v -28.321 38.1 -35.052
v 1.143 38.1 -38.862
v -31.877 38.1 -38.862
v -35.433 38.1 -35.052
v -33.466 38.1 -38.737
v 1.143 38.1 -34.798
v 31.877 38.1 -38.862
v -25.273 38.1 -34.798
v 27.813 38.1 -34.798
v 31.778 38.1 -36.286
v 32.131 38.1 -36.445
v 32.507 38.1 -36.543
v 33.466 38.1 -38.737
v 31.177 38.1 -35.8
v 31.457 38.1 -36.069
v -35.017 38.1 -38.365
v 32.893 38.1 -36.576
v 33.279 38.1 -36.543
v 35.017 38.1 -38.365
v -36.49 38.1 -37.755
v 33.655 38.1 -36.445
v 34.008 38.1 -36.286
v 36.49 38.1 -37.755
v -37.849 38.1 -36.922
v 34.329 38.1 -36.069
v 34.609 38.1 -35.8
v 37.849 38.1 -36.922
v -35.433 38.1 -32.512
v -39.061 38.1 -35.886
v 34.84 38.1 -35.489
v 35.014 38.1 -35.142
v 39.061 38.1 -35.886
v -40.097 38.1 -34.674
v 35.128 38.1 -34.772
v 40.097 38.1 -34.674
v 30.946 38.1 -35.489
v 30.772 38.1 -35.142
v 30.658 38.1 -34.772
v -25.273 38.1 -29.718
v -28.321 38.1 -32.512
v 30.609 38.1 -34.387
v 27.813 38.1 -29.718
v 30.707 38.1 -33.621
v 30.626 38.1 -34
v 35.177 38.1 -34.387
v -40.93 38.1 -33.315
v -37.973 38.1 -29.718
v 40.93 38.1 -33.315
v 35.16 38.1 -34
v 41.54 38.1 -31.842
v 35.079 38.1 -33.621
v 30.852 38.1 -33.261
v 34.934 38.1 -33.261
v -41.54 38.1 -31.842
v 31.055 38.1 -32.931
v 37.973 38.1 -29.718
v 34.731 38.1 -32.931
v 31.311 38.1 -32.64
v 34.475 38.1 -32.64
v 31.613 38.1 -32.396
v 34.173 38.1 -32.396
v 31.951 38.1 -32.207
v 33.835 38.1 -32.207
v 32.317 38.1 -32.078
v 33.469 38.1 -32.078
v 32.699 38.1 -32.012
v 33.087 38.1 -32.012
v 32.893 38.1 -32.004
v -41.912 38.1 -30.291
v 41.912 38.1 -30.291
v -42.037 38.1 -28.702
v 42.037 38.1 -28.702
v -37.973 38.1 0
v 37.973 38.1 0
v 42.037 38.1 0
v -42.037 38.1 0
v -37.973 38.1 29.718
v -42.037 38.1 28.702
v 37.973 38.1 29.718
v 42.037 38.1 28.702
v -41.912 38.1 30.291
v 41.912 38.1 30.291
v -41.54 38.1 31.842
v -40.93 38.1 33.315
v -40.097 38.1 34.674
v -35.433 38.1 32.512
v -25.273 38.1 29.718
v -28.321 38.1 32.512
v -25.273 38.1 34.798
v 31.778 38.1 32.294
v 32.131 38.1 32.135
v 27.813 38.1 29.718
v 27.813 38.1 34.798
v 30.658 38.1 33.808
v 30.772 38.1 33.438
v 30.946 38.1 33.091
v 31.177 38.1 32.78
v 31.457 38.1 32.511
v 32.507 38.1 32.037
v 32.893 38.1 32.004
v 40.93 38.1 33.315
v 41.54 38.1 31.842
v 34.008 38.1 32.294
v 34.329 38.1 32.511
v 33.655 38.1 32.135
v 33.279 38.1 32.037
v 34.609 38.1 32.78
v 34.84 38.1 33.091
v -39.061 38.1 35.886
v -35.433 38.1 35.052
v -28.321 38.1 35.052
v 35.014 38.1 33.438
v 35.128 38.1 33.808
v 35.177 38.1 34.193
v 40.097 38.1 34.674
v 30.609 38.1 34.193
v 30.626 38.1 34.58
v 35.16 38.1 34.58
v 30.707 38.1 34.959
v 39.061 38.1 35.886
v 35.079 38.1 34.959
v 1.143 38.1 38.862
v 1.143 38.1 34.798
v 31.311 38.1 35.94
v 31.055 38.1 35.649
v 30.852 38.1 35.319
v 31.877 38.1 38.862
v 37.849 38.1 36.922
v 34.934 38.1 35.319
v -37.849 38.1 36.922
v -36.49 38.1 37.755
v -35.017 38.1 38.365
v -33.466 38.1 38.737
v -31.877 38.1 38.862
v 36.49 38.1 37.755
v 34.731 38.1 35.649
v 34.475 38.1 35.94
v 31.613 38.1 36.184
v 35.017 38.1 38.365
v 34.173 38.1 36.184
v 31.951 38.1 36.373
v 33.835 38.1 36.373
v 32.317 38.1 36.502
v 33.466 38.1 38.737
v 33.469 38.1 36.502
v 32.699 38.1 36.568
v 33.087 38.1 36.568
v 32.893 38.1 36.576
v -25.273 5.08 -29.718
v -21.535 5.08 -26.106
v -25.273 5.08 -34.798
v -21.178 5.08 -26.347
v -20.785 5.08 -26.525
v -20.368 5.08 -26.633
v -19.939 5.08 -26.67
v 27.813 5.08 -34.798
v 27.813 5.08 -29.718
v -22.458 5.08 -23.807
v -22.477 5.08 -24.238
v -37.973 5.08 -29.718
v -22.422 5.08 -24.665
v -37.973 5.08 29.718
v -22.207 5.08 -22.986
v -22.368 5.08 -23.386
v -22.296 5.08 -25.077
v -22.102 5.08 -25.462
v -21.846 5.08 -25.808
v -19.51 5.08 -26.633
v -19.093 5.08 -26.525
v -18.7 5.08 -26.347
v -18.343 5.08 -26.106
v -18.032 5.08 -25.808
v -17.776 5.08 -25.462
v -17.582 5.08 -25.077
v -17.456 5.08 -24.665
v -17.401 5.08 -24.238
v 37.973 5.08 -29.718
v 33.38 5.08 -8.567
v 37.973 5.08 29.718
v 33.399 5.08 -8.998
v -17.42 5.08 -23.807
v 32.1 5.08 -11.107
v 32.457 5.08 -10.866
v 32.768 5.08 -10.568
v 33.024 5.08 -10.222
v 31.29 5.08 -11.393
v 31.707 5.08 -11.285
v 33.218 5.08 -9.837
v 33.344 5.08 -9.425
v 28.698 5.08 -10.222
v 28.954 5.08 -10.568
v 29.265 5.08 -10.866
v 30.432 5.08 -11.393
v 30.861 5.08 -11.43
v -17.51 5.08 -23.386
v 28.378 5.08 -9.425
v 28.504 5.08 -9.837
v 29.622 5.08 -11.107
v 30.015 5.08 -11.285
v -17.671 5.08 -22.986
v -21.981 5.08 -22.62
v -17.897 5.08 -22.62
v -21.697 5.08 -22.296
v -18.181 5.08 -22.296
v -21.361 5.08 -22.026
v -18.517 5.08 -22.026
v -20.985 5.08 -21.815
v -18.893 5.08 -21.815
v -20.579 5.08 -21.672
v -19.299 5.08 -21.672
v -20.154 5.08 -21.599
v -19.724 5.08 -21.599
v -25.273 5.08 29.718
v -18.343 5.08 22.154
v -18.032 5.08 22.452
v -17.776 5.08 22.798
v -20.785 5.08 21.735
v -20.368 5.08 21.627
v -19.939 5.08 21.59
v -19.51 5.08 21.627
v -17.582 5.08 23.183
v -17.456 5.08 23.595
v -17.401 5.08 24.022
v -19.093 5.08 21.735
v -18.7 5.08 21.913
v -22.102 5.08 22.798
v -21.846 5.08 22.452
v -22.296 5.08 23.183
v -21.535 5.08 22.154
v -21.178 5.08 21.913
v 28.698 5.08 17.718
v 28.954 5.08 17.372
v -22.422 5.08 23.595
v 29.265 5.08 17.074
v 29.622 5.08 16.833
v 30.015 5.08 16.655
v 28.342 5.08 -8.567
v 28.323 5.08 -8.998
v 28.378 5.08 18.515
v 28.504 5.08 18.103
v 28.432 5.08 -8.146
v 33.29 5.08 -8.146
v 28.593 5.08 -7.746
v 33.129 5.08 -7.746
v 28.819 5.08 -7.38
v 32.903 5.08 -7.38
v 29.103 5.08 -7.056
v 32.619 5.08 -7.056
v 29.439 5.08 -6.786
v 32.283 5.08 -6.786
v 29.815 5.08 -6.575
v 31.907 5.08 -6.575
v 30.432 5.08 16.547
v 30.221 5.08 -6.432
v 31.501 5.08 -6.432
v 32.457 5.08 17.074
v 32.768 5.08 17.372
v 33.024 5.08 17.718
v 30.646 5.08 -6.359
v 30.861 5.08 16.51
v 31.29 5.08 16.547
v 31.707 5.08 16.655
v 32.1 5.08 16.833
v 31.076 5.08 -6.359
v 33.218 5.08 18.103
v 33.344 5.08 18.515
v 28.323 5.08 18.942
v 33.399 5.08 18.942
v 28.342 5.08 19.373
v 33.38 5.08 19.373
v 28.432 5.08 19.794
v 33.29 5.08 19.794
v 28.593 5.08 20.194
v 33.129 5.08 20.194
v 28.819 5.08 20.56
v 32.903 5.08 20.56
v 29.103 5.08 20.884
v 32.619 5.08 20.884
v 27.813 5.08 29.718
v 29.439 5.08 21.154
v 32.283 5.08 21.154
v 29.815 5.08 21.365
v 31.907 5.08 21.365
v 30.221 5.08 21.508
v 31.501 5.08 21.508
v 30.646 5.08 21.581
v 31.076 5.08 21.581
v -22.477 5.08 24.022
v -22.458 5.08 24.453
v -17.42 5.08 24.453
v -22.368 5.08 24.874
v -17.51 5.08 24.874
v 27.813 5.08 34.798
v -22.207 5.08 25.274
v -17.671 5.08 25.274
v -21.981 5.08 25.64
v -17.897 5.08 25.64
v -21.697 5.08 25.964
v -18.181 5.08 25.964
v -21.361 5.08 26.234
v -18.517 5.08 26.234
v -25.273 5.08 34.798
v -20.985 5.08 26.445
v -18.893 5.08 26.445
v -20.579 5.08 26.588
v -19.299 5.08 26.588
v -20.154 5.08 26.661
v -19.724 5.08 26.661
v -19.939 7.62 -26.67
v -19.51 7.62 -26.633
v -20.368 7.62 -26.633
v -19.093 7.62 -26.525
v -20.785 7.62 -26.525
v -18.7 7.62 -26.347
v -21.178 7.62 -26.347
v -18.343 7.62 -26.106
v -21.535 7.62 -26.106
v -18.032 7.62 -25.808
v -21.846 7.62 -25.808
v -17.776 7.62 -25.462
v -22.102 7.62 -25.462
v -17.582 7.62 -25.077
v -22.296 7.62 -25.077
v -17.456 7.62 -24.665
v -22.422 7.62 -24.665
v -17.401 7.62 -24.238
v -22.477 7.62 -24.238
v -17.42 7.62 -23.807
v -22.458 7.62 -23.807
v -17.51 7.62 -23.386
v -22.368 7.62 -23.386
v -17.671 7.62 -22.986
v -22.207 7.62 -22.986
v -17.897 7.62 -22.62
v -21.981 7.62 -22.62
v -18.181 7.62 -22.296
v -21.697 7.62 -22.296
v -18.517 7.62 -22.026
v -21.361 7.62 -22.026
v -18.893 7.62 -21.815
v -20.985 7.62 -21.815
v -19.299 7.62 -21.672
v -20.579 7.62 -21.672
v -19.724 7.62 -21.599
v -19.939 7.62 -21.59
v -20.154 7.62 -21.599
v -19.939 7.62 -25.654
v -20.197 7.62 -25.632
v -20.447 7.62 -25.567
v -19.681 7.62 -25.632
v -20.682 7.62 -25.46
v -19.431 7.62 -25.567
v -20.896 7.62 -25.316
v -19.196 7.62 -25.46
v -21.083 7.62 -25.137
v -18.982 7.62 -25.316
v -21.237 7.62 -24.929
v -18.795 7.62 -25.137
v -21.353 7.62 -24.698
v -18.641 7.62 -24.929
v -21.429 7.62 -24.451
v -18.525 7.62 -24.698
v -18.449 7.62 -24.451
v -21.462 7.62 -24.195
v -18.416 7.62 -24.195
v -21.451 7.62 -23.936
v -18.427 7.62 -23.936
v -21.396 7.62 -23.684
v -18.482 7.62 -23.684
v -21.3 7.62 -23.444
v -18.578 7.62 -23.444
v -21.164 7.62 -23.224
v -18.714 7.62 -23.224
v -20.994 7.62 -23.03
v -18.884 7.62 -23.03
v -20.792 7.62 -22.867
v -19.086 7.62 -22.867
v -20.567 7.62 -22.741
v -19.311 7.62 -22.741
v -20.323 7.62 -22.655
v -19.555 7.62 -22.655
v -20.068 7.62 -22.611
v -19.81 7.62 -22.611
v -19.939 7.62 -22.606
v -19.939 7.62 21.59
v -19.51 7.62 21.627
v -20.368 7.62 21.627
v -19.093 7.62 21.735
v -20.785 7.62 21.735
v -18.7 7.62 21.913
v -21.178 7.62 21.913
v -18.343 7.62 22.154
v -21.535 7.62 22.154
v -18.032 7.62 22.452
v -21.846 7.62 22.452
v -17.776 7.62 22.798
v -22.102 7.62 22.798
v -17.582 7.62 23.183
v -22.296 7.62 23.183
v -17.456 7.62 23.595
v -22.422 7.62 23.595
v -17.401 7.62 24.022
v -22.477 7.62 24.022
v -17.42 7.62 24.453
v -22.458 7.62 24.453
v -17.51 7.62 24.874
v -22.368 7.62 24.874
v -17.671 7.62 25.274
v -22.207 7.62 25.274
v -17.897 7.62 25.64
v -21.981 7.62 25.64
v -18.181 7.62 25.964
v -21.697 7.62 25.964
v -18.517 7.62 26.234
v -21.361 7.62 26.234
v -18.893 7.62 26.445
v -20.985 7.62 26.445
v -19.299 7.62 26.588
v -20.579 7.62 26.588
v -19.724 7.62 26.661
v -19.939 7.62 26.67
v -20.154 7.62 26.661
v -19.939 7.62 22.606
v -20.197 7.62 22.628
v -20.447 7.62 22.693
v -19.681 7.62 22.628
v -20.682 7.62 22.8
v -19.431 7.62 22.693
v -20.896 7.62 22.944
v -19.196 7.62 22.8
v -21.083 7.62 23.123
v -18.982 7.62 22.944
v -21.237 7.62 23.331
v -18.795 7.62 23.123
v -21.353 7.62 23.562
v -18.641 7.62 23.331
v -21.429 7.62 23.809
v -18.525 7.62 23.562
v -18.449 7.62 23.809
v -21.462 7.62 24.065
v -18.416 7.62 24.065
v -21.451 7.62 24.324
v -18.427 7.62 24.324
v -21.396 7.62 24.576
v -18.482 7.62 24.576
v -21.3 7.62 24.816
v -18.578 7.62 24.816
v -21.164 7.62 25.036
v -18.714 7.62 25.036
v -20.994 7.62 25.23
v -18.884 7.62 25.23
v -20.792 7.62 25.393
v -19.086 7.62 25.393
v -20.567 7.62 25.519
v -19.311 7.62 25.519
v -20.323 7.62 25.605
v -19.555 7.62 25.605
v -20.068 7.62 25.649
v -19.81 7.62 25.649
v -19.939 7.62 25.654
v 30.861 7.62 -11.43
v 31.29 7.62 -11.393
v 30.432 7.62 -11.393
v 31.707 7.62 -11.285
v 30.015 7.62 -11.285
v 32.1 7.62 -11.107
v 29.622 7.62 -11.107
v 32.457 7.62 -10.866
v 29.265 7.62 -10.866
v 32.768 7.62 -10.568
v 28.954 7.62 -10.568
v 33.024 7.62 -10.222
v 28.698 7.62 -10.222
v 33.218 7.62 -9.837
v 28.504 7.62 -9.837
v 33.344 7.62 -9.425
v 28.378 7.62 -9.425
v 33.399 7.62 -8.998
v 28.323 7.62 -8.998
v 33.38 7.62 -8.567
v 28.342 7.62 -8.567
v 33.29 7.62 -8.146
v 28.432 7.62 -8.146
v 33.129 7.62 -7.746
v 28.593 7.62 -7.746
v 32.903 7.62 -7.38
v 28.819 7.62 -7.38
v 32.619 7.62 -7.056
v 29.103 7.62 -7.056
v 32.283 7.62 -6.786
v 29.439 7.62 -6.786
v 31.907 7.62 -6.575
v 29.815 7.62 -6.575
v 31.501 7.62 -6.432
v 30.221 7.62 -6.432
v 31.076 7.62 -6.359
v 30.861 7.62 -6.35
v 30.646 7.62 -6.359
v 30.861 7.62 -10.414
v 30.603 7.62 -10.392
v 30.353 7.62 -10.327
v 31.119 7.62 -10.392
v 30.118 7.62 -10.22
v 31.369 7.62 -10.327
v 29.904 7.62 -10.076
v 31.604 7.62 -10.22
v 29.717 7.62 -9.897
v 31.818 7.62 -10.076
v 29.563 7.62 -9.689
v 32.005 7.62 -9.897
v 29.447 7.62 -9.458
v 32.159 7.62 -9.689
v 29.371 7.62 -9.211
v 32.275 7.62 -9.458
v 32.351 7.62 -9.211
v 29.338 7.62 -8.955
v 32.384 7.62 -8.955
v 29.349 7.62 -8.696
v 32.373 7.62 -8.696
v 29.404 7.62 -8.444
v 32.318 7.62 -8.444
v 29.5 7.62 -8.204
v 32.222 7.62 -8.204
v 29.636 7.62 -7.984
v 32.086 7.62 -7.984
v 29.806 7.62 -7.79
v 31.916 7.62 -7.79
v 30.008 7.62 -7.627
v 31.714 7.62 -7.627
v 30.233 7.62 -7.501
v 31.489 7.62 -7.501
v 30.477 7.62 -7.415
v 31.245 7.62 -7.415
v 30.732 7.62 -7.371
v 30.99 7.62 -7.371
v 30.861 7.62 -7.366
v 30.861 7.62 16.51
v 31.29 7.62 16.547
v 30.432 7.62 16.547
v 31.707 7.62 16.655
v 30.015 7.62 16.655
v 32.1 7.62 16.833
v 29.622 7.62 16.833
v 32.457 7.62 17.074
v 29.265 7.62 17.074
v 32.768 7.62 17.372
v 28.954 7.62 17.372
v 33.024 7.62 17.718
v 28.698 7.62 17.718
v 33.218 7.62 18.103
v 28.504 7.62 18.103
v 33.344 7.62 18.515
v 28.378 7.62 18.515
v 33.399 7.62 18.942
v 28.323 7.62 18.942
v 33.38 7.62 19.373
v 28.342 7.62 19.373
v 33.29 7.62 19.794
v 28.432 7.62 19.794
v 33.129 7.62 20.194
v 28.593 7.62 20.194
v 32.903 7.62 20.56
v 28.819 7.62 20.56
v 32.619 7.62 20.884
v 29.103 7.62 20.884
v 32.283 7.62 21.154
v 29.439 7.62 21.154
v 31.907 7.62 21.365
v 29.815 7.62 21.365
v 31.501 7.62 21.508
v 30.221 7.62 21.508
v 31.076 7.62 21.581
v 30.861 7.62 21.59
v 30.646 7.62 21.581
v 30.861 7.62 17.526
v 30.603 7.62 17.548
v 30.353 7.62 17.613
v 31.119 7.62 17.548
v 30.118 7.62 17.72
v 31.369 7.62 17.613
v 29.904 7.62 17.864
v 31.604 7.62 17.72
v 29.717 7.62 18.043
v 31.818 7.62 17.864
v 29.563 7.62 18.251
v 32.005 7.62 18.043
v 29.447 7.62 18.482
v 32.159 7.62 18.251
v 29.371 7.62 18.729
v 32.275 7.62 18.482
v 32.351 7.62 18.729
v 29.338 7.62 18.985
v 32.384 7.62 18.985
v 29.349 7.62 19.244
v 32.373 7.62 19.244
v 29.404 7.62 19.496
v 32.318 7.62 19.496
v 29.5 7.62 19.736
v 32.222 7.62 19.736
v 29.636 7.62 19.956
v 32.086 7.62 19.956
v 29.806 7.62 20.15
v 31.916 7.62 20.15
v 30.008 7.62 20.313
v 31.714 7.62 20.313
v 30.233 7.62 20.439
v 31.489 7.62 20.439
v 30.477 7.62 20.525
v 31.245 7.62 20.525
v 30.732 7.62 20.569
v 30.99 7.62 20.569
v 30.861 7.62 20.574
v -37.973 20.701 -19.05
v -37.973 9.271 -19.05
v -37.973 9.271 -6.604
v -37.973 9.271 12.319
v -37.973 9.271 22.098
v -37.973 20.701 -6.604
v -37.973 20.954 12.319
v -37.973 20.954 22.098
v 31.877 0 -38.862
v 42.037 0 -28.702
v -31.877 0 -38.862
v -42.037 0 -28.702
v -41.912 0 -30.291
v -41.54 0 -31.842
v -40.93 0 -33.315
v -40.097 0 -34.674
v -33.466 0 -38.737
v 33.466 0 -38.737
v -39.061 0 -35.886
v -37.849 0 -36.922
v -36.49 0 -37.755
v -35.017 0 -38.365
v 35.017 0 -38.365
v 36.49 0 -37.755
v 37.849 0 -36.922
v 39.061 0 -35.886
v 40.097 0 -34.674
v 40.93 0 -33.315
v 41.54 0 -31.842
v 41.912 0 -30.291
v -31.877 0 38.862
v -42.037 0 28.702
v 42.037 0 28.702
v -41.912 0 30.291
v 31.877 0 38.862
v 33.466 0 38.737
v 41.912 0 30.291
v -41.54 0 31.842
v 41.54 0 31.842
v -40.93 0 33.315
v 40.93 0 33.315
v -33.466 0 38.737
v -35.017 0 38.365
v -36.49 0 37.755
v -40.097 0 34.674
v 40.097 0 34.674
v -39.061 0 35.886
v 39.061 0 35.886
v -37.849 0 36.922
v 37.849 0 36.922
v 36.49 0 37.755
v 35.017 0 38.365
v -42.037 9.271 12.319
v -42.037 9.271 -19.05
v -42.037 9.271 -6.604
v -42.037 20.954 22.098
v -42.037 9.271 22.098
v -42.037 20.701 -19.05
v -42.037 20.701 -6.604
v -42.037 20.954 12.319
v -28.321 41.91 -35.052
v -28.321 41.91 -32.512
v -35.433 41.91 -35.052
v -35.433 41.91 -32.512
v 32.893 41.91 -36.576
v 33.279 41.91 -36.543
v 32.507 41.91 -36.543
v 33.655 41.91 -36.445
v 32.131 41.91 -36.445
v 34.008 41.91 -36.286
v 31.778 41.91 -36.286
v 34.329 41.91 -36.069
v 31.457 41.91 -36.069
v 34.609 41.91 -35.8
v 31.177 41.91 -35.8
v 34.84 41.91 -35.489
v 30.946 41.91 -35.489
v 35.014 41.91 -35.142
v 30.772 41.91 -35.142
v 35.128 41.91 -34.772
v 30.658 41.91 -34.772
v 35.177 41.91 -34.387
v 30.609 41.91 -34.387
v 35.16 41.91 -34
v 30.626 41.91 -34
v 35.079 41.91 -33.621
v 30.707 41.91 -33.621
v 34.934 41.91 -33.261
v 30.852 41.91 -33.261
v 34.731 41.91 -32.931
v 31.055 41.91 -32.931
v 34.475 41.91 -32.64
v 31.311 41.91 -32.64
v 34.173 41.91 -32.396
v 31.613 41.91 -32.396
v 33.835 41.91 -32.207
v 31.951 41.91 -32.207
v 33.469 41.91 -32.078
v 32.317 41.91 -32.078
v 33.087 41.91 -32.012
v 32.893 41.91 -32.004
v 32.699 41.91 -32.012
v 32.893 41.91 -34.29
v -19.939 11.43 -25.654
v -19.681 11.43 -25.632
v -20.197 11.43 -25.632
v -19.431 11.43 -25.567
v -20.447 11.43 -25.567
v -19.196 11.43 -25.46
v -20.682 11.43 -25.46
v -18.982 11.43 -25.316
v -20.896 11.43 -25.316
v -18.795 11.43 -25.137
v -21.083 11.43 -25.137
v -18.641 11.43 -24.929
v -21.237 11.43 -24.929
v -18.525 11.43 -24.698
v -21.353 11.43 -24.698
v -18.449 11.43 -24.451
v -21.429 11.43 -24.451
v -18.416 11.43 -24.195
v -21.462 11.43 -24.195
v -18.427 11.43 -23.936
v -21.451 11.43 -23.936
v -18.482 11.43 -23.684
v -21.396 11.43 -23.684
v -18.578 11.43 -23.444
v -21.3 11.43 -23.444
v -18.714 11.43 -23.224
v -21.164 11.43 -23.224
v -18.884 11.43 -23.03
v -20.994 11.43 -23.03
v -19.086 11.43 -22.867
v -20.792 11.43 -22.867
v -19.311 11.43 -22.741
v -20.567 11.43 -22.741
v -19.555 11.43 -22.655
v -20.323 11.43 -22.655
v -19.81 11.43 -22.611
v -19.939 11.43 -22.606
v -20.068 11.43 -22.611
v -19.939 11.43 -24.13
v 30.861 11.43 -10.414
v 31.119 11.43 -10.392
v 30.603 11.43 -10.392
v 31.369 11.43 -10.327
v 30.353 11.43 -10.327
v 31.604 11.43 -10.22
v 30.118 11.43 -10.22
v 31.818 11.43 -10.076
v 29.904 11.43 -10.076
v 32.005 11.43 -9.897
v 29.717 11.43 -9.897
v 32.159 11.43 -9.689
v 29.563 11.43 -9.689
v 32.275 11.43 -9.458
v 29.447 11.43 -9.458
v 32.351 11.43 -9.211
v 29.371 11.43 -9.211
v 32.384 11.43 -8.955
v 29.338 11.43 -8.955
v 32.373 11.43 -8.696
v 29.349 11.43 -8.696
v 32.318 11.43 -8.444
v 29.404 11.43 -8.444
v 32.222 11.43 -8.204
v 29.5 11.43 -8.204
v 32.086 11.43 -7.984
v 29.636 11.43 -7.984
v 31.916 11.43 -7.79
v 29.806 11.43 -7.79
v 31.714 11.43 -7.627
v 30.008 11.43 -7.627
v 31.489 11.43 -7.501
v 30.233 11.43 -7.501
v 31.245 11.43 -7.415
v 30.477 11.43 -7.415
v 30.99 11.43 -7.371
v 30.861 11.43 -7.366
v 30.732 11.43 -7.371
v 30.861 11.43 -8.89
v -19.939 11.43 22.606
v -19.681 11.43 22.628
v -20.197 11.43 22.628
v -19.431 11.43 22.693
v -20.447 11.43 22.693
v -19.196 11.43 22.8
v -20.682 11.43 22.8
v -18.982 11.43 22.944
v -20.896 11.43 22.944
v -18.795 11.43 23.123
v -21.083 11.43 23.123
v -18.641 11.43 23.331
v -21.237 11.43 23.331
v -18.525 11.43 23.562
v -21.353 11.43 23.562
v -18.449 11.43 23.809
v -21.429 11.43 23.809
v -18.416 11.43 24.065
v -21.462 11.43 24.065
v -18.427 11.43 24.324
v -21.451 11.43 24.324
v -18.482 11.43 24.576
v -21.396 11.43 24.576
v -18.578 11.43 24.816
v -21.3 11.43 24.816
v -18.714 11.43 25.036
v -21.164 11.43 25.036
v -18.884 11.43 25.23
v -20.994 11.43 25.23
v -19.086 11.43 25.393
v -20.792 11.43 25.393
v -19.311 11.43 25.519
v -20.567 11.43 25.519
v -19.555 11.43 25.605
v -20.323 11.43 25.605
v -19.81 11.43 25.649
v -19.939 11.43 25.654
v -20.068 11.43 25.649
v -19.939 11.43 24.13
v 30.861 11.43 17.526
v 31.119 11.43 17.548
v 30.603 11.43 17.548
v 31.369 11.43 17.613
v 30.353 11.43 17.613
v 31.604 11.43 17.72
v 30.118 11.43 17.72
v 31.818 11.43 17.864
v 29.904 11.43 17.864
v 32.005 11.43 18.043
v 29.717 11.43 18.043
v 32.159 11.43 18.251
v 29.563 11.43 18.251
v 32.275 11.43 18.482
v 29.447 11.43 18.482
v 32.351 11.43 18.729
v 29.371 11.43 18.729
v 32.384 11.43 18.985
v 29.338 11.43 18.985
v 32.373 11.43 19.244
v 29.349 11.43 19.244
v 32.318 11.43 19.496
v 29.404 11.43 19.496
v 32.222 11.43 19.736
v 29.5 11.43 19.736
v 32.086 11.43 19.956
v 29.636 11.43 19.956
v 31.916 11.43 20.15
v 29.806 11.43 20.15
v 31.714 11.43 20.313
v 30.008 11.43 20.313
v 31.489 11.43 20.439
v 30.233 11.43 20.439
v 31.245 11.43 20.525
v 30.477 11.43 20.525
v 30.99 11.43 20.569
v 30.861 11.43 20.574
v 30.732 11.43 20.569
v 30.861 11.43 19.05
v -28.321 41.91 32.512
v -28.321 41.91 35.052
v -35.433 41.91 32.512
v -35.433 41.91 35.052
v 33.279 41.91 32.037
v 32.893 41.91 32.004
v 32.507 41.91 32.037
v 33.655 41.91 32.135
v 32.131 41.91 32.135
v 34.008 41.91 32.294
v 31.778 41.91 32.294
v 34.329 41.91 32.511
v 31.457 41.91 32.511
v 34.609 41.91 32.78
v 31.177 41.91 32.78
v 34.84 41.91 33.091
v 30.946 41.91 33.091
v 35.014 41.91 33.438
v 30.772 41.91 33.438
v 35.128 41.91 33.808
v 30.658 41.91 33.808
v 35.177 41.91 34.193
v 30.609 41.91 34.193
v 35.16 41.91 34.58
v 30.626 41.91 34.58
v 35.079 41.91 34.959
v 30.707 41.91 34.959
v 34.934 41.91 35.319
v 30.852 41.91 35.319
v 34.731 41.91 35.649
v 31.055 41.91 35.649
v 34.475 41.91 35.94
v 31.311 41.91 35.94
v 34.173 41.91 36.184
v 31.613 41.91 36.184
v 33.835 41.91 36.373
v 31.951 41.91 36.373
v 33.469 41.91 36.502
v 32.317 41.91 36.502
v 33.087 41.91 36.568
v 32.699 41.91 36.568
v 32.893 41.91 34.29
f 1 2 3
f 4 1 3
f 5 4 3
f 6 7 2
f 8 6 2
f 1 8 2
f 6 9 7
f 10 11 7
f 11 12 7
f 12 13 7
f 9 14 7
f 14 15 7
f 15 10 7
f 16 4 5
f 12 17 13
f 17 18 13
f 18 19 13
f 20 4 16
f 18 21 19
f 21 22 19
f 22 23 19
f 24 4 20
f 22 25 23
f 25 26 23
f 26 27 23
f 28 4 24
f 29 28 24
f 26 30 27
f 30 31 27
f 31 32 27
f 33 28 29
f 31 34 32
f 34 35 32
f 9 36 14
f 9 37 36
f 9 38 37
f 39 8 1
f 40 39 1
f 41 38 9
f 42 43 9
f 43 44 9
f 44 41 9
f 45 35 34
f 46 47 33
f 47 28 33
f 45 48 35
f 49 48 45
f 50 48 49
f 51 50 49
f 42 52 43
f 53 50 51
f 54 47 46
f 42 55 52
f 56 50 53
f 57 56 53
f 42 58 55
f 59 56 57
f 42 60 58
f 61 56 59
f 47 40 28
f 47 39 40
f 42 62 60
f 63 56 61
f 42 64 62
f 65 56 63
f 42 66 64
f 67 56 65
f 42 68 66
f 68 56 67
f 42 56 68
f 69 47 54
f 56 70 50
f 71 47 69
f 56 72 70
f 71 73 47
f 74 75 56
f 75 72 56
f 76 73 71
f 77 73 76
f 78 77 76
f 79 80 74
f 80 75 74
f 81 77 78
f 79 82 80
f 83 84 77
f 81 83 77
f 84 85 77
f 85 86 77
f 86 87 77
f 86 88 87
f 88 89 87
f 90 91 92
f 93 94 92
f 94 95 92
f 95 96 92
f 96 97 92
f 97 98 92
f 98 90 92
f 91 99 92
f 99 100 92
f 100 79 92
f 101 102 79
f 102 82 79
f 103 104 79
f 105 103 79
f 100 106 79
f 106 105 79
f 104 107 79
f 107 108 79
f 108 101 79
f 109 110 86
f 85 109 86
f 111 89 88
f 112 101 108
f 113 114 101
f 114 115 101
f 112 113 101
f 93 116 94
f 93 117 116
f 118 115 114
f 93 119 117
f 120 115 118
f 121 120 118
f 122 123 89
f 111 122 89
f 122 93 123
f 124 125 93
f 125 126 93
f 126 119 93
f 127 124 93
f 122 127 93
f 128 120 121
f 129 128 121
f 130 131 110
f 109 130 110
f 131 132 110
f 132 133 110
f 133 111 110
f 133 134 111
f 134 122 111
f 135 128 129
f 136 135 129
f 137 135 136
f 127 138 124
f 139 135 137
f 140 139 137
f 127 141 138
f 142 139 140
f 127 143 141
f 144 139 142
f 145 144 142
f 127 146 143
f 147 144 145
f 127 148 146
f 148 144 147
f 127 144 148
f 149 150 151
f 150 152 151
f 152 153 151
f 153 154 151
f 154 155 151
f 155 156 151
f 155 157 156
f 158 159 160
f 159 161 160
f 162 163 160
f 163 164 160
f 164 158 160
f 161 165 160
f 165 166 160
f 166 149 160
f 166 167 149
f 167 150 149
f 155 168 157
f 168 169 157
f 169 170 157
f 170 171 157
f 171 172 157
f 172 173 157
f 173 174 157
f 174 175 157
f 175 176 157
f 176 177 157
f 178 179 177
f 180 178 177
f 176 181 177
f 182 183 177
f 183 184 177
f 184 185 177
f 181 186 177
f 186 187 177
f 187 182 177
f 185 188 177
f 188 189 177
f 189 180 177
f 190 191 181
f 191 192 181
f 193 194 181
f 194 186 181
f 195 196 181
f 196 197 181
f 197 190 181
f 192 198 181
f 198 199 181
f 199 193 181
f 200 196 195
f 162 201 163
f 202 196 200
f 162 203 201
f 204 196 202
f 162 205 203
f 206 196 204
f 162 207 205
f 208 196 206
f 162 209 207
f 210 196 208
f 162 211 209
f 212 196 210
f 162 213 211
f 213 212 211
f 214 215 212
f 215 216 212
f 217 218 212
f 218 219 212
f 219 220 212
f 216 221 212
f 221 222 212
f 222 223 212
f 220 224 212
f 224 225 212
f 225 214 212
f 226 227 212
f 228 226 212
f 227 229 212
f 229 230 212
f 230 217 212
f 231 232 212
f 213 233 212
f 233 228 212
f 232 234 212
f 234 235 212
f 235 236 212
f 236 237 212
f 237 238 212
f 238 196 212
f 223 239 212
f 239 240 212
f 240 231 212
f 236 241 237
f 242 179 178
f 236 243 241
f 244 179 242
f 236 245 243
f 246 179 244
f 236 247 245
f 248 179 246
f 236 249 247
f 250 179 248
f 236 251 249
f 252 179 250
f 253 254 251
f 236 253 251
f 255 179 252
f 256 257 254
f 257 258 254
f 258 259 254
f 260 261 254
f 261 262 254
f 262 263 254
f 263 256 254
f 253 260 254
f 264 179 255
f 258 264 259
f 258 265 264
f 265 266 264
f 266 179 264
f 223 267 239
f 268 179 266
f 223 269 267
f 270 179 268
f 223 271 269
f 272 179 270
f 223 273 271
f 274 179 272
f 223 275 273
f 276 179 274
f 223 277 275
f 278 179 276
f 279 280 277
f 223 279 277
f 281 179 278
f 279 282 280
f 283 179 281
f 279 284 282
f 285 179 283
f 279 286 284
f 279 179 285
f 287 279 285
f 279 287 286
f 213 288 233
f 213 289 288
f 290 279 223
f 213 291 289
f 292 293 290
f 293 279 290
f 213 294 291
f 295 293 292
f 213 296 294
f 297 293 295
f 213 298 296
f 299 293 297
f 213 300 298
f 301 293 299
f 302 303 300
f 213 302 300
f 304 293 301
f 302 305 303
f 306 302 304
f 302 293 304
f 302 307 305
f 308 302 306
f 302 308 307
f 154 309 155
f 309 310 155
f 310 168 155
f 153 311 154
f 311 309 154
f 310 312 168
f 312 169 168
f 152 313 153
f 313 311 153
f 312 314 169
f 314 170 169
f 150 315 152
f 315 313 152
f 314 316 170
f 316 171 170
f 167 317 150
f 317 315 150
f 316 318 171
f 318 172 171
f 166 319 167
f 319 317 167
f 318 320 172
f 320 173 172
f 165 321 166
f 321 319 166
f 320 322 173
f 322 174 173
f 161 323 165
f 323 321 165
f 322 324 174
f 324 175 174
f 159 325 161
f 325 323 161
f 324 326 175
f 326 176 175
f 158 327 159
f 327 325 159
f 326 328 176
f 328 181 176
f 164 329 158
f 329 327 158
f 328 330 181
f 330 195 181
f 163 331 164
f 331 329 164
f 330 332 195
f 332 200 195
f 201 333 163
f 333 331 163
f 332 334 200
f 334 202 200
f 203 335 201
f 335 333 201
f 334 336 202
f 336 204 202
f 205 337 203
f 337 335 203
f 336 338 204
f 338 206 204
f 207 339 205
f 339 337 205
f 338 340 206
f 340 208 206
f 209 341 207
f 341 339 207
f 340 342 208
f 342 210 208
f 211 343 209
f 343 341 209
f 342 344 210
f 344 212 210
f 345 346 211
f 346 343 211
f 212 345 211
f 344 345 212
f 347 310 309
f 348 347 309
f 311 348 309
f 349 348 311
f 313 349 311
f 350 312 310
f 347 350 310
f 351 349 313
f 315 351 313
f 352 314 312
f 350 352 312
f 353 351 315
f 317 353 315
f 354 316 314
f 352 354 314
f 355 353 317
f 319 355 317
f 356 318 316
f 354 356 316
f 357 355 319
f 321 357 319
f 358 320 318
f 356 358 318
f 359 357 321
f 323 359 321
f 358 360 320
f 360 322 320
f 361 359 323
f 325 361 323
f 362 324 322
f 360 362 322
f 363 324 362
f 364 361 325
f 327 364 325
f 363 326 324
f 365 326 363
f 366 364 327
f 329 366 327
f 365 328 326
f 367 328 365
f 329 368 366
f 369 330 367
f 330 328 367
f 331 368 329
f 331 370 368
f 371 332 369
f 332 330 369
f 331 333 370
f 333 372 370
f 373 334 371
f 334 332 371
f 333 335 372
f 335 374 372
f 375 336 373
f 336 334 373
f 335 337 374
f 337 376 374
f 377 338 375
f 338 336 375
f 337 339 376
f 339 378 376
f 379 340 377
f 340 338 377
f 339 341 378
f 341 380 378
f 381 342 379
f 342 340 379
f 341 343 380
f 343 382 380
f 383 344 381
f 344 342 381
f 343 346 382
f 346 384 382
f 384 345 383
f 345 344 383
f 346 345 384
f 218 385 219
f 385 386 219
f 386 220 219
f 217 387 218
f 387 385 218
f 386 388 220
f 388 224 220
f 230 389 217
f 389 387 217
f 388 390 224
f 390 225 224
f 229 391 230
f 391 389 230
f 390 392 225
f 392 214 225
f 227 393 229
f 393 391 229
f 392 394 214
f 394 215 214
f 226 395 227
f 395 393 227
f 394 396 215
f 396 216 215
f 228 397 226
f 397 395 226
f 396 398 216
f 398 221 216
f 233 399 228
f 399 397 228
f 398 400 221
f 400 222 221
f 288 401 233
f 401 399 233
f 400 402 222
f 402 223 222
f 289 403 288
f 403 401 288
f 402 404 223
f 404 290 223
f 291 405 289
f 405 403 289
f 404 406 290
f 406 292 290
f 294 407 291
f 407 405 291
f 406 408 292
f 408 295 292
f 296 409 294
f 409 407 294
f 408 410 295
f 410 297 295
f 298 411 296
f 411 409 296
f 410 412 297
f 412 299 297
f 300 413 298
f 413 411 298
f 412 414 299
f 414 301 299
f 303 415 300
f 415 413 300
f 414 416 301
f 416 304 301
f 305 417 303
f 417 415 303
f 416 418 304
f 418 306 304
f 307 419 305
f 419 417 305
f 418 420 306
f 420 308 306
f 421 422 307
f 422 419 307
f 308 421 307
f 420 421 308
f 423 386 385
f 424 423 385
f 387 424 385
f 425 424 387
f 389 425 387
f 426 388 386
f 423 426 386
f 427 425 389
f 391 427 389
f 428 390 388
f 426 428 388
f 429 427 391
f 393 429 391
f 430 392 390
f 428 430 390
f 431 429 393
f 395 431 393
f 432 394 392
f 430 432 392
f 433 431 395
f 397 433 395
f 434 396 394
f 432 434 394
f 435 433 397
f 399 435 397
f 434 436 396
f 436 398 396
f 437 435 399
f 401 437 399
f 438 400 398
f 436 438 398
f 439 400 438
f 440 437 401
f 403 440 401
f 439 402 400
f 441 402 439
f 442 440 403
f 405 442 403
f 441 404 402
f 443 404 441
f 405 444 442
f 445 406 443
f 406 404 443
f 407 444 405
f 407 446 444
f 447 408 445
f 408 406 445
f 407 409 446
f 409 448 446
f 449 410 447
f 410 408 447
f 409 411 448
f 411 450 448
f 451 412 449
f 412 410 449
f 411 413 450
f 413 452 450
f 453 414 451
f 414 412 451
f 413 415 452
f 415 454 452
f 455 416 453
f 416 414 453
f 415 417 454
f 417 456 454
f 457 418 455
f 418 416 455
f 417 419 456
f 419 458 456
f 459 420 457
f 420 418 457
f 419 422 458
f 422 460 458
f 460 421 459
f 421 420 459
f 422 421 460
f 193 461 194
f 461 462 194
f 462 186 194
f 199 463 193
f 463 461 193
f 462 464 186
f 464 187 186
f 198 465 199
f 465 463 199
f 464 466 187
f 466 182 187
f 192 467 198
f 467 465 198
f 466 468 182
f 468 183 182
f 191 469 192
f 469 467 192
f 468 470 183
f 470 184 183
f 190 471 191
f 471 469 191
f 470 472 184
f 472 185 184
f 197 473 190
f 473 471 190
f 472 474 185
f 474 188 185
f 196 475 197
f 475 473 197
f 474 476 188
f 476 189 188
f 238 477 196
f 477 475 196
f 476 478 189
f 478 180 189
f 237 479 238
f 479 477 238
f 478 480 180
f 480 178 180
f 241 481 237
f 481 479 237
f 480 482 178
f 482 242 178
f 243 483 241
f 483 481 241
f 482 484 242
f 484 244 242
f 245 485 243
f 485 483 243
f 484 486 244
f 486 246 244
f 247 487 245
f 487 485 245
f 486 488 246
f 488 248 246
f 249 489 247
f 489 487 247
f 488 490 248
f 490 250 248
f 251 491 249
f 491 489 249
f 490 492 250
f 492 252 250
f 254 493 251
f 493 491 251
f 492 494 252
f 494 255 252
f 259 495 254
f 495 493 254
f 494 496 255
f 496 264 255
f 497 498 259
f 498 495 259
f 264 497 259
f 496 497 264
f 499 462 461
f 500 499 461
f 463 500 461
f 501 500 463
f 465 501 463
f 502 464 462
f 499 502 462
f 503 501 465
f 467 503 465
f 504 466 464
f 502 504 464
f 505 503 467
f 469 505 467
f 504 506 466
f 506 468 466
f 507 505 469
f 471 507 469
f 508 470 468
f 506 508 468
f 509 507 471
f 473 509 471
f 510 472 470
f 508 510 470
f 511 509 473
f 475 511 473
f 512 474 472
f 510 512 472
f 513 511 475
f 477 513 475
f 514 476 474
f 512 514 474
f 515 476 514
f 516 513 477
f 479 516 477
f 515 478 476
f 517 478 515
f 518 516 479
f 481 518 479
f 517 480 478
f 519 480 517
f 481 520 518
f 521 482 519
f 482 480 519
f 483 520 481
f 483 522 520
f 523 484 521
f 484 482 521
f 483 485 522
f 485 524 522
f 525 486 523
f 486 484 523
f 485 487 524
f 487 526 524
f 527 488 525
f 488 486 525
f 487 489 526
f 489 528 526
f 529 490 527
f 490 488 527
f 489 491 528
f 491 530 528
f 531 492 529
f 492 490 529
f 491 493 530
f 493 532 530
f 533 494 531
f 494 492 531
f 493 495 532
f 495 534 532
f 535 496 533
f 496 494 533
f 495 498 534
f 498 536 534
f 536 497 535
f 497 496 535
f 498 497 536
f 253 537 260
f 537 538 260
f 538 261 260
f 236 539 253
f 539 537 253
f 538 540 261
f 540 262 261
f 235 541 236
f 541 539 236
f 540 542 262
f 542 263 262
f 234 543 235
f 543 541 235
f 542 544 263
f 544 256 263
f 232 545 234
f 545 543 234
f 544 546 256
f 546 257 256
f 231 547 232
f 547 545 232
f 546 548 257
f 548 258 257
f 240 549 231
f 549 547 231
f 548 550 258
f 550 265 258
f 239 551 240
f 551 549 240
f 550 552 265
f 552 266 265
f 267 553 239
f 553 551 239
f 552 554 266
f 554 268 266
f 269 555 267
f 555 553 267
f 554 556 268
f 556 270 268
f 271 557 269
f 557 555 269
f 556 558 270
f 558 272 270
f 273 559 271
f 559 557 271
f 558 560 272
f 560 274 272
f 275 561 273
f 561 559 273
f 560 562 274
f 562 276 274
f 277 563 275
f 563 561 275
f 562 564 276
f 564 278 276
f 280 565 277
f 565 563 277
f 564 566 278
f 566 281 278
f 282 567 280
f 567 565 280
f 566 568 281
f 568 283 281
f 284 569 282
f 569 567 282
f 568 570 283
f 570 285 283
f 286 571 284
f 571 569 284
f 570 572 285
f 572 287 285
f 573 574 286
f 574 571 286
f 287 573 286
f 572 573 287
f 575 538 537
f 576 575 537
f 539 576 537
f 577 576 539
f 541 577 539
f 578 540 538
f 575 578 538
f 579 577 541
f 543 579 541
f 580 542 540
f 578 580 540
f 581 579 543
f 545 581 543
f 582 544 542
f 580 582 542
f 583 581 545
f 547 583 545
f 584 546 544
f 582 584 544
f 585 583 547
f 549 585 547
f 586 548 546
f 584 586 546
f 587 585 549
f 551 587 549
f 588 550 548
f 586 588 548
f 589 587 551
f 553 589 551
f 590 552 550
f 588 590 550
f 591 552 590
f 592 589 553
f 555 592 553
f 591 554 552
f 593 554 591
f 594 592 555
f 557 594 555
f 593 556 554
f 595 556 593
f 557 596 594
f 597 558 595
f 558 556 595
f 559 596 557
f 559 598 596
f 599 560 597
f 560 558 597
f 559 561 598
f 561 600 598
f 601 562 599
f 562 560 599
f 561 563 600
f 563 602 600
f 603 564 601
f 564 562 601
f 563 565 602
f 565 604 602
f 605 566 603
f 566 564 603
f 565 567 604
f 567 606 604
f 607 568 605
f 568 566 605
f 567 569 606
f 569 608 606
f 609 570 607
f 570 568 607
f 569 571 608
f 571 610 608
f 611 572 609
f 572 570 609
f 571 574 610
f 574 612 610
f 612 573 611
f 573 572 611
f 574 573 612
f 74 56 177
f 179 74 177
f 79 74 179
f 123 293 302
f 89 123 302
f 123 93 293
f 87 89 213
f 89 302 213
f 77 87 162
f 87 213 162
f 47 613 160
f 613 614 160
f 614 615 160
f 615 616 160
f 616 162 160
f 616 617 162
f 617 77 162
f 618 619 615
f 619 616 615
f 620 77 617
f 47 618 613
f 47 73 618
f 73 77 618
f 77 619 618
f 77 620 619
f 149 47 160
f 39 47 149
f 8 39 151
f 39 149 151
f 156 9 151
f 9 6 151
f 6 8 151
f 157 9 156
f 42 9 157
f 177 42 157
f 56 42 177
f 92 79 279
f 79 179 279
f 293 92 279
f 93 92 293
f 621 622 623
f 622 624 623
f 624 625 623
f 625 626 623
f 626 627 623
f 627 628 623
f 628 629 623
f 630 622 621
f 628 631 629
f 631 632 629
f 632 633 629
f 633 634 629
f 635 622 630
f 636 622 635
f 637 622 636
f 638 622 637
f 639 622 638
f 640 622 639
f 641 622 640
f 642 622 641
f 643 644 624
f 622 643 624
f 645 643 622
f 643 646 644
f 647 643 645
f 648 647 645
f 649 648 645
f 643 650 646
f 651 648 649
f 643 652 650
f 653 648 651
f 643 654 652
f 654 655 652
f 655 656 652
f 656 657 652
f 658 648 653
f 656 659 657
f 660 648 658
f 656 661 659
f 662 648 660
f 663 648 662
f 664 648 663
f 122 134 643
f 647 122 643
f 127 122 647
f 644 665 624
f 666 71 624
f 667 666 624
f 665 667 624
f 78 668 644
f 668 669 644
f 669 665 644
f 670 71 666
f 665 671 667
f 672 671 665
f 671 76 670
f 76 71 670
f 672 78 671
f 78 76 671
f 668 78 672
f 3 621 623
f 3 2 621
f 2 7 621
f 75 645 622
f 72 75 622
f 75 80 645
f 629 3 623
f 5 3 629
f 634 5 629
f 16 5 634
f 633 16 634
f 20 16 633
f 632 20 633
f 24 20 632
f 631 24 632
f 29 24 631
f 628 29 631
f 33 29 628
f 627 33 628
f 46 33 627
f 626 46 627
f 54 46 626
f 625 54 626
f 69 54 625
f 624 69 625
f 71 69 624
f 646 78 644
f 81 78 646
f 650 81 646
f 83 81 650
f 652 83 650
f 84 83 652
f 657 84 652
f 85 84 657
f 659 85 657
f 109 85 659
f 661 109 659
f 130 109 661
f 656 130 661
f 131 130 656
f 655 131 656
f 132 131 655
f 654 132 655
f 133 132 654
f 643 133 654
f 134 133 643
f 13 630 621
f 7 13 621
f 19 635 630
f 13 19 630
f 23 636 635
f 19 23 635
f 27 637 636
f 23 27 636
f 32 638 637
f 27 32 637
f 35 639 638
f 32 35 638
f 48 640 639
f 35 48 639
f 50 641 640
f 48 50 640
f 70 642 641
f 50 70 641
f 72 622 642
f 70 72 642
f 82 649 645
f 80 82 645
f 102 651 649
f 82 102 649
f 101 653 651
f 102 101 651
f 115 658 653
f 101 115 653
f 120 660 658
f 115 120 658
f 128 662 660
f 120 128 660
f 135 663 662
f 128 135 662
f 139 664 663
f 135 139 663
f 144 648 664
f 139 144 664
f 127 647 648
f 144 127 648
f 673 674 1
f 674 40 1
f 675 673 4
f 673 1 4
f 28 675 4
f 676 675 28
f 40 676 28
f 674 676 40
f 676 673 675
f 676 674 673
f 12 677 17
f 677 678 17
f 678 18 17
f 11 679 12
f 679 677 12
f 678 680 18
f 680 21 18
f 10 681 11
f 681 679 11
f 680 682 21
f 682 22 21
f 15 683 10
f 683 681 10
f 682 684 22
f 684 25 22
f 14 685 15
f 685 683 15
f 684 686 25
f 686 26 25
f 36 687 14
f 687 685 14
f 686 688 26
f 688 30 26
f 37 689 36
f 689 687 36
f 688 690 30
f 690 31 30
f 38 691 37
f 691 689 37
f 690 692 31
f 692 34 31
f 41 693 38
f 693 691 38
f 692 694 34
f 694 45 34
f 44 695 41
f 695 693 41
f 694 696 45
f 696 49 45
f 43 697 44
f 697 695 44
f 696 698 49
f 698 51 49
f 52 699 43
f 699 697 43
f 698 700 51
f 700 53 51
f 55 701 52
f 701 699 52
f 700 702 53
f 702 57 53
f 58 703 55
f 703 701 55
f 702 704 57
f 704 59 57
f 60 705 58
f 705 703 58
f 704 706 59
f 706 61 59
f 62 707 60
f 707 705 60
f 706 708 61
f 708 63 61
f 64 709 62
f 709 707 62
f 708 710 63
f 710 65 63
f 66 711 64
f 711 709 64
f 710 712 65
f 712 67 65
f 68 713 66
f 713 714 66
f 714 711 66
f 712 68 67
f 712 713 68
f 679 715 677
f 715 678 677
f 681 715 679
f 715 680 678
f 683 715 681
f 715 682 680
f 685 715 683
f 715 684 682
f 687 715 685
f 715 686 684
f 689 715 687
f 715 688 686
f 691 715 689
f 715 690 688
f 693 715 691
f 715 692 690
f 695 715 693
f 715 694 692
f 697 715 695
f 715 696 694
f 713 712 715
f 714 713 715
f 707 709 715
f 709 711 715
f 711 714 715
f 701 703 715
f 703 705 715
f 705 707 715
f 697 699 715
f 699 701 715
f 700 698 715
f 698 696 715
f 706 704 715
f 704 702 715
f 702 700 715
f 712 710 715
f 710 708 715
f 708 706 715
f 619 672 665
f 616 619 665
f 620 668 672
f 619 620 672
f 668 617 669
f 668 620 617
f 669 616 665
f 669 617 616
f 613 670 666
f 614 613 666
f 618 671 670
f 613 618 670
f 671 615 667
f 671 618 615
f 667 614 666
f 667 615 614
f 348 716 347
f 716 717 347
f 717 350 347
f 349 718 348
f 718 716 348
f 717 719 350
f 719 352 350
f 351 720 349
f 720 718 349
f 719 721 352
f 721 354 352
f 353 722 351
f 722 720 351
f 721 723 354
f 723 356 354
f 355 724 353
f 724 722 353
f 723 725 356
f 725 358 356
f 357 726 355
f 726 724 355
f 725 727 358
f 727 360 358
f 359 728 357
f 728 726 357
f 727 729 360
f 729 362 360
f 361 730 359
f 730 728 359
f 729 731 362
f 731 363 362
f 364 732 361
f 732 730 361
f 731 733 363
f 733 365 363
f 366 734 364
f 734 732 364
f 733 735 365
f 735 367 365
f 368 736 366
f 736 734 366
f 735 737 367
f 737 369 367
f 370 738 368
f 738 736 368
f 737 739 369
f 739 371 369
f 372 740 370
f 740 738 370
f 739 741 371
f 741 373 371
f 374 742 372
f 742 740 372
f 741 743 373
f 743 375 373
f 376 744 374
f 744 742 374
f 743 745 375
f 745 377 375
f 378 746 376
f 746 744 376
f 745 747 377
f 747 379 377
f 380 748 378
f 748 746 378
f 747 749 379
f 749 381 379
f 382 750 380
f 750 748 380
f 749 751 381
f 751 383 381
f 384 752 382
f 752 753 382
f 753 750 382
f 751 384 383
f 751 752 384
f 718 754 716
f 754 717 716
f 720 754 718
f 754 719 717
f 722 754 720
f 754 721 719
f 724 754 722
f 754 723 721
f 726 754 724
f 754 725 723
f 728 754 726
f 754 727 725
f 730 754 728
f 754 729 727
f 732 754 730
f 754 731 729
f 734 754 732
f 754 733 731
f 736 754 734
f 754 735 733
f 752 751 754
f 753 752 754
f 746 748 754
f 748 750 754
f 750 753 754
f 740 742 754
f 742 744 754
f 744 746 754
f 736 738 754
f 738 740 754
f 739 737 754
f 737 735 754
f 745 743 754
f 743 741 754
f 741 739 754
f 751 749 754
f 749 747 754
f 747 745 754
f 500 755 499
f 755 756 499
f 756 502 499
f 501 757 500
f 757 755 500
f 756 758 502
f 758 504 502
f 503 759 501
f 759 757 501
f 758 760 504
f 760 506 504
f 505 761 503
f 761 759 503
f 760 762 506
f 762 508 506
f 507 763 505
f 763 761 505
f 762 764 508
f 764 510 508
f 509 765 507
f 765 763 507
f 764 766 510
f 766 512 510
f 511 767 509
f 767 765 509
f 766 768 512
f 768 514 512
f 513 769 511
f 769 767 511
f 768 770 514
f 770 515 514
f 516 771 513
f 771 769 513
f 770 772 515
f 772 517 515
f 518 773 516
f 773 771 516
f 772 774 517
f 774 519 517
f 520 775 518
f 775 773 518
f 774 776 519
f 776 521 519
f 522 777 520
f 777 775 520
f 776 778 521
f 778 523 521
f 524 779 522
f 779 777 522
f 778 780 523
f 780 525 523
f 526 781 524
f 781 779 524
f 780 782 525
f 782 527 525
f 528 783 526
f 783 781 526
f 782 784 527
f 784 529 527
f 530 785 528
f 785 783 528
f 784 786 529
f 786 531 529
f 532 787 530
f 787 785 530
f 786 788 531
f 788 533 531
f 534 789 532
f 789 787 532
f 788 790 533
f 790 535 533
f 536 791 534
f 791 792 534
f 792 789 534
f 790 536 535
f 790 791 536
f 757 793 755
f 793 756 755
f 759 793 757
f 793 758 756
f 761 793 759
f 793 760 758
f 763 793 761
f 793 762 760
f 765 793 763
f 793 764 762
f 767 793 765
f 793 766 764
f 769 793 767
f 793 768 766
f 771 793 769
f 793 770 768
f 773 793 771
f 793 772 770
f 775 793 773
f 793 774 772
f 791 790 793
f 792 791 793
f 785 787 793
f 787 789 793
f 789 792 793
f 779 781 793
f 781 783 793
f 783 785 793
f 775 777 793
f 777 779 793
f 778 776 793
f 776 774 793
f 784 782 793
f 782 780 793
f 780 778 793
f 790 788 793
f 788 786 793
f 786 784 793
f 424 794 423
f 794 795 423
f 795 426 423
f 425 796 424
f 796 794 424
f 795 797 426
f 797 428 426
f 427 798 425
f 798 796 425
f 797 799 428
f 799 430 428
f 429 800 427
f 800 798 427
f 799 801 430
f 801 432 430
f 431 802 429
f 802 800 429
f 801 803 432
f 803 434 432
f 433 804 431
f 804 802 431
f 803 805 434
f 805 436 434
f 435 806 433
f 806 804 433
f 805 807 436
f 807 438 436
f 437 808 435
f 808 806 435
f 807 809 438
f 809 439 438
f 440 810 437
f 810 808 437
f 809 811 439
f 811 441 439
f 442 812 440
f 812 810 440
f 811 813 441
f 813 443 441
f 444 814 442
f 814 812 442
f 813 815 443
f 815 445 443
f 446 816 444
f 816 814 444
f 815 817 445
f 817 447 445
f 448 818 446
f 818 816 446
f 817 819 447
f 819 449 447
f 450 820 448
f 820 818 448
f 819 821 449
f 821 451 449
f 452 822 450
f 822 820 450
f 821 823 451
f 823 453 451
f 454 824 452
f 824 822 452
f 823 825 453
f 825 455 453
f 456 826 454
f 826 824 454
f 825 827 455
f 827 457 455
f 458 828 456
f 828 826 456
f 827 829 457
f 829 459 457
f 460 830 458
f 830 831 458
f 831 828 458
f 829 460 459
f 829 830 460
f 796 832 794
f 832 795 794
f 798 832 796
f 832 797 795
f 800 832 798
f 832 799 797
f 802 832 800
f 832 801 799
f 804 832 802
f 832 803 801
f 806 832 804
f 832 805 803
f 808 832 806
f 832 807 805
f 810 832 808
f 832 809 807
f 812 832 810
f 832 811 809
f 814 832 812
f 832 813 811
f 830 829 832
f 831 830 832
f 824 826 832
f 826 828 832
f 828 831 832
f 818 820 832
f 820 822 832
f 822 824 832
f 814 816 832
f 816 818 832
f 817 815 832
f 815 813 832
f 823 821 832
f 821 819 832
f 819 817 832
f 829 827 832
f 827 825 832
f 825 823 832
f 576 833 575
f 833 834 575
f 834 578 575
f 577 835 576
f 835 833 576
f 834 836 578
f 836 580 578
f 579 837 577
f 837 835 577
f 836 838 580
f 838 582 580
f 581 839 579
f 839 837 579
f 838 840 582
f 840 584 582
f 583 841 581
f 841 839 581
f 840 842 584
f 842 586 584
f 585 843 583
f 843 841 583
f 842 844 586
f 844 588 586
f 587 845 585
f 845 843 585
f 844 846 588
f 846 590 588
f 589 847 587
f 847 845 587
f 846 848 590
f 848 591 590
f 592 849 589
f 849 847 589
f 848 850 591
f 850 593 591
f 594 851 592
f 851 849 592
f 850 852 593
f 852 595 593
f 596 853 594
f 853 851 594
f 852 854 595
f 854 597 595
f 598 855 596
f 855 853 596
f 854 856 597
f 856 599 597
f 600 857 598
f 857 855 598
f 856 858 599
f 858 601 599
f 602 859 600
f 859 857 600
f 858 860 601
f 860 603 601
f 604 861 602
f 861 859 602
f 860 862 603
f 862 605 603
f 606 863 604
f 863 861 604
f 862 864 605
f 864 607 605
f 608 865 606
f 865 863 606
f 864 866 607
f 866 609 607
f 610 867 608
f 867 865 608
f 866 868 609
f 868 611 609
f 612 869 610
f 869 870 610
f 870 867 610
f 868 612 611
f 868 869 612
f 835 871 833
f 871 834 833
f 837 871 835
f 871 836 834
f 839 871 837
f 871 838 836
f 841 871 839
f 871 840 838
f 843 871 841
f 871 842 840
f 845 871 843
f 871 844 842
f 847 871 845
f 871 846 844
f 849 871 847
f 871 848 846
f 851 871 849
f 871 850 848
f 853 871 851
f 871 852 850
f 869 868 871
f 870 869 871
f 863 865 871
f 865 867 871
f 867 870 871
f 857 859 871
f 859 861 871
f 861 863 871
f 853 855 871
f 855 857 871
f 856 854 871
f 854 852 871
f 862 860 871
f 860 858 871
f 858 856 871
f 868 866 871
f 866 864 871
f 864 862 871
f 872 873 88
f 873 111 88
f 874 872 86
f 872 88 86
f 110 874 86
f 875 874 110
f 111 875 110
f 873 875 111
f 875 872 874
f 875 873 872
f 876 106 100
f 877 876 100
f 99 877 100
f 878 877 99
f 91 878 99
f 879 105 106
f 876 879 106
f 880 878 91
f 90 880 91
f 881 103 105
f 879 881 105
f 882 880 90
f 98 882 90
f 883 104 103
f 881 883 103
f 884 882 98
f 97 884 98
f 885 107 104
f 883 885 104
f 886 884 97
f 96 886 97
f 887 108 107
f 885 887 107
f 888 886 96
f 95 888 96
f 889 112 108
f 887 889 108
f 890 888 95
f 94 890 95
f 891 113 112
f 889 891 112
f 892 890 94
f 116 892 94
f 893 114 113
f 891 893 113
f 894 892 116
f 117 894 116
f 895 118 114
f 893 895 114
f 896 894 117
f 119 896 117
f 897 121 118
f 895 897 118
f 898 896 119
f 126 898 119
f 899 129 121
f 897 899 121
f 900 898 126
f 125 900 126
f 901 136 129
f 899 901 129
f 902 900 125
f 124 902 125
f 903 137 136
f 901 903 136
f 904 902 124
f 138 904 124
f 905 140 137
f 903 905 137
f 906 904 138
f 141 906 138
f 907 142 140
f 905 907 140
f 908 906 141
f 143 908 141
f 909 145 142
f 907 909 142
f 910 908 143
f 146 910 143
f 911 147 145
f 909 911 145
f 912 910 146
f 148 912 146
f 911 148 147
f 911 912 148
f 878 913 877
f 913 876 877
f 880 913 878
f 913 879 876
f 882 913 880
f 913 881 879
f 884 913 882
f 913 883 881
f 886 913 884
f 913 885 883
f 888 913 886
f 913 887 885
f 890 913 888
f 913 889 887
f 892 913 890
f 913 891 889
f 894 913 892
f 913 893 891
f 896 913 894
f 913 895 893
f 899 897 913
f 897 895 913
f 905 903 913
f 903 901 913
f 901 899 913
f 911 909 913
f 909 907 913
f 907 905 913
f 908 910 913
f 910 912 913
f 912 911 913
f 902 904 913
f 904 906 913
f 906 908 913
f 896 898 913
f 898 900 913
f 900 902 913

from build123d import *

# Parameters (mm, degrees)
SKETCH1_W            = 84.074
SKETCH1_H            = 77.724
BOSS_EXTRUDE1_DEPTH  = 5.08
SKETCH3_R            = 2.54
BOSS_EXTRUDE2_DEPTH  = 2.54
SKETCH19_W           = 12.7
SKETCH19_H           = 5.08
SKETCH19_W_2         = 10.16
BOSS_EXTRUDE7_DEPTH  = 33.02
FILLET2_R            = 10.16
SKETCH21_R           = 2.286
SKETCH21_W           = 7.112
SKETCH21_H           = 2.54
BOSS_EXTRUDE9_DEPTH  = 3.81
SKETCH22_W           = 12.446
SKETCH22_H           = 11.43
SKETCH22_W_2         = 9.779
SKETCH22_H_2         = 11.683309762
CUT_EXTRUDE10_DEPTH  = 5.08
SKETCH23_R           = 1.524
BOSS_EXTRUDE10_DEPTH = 3.81


with BuildPart() as part:
    # Sketch1 → Boss-Extrude1 (new body)
    with BuildSketch(Plane(origin=(0, 0, 0), x_dir=(1, 0, 0), z_dir=(0, 1, 0))):
        Rectangle(SKETCH1_W, SKETCH1_H)
    extrude(amount=BOSS_EXTRUDE1_DEPTH)

    # Sketch3 → Boss-Extrude2 (add)
    with BuildSketch(Plane(origin=(0, 5.08, 0), x_dir=(1, 0, 0), z_dir=(0, 1, 0))):
        with Locations((-19.939, 24.13)):
            Circle(SKETCH3_R)
        with Locations((-19.939, -24.13)):
            Circle(SKETCH3_R)
        with Locations((30.861, 8.89)):
            Circle(SKETCH3_R)
        with Locations((30.861, -19.05)):
            Circle(SKETCH3_R)
    extrude(amount=BOSS_EXTRUDE2_DEPTH)

    # Sketch19 → Boss-Extrude7 (add)
    with BuildSketch(Plane(origin=(0, 5.08, 0), x_dir=(1, 0, 0), z_dir=(0, 1, 0))):
        Polygon((-37.973, 34.798), (-42.037, 34.798), (-42.037, -34.798), (-37.973, -34.798), (-37.973, -29.718), (-37.973, 29.718), align=None)
        with Locations((-31.623, -32.258)):
            Rectangle(SKETCH19_W, SKETCH19_H)
        Polygon((42.037, -38.862), (42.037, 34.798), (37.973, 34.798), (37.973, 29.718), (37.973, -29.718), (37.973, -34.798), (37.973, -38.862), align=None)
        with Locations((32.893, 32.258)):
            Rectangle(SKETCH19_W_2, SKETCH19_H)
        Polygon((42.037, 38.862), (-42.037, 38.862), (-42.037, 34.798), (-37.973, 34.798), (-25.273, 34.798), (27.813, 34.798), (37.973, 34.798), (42.037, 34.798), align=None)
        with Locations((-31.623, 32.258)):
            Rectangle(SKETCH19_W, SKETCH19_H)
        Polygon((-37.973, -34.798), (-42.037, -34.798), (-42.037, -38.862), (37.973, -38.862), (37.973, -34.798), (27.813, -34.798), (-25.273, -34.798), align=None)
        with Locations((32.893, -32.258)):
            Rectangle(SKETCH19_W_2, SKETCH19_H)
    extrude(amount=BOSS_EXTRUDE7_DEPTH)

    # Fillet2
    fillet2_edges = [part.edges().sort_by_distance(p)[0] for p in [
        (42.037, 19.05, 38.862),
        (-42.037, 19.05, 38.862),
        (-42.037, 19.05, -38.862),
        (42.037, 19.05, -38.862),
    ]]
    fillet(fillet2_edges, radius=FILLET2_R)

    # Sketch21 → Boss-Extrude9 (add)
    with BuildSketch(Plane(origin=(0, 38.1, 0), x_dir=(1, 0, 0), z_dir=(0, 1, 0))):
        with Locations((32.893, 34.29)):
            Circle(SKETCH21_R)
        with Locations((-31.877, 33.782)):
            Rectangle(SKETCH21_W, SKETCH21_H)
    boss_extrude9 = extrude(amount=BOSS_EXTRUDE9_DEPTH)

    # Sketch22 → Cut-Extrude10 (cut)
    with BuildSketch(Plane.ZY.offset(42.037)):
        with Locations((-12.827, 14.986)):
            Rectangle(SKETCH22_W, SKETCH22_H)
        with Locations((17.2085, 15.112654881)):
            Rectangle(SKETCH22_W_2, SKETCH22_H_2)
    extrude(amount=-CUT_EXTRUDE10_DEPTH, mode=Mode.SUBTRACT)

    # Sketch23 → Boss-Extrude10 (add)
    with BuildSketch(Plane(origin=(0, 7.62, 0), x_dir=(1, 0, 0), z_dir=(0, 1, 0))):
        with Locations((-19.939, 24.13)):
            Circle(SKETCH23_R)
        with Locations((30.861, 8.89)):
            Circle(SKETCH23_R)
        with Locations((-19.939, -24.13)):
            Circle(SKETCH23_R)
        with Locations((30.861, -19.05)):
            Circle(SKETCH23_R)
    extrude(amount=BOSS_EXTRUDE10_DEPTH)

    # Mirror1: Boss-Extrude9 across plane
    add(boss_extrude9.mirror(Plane.XY))


solid = part.part
